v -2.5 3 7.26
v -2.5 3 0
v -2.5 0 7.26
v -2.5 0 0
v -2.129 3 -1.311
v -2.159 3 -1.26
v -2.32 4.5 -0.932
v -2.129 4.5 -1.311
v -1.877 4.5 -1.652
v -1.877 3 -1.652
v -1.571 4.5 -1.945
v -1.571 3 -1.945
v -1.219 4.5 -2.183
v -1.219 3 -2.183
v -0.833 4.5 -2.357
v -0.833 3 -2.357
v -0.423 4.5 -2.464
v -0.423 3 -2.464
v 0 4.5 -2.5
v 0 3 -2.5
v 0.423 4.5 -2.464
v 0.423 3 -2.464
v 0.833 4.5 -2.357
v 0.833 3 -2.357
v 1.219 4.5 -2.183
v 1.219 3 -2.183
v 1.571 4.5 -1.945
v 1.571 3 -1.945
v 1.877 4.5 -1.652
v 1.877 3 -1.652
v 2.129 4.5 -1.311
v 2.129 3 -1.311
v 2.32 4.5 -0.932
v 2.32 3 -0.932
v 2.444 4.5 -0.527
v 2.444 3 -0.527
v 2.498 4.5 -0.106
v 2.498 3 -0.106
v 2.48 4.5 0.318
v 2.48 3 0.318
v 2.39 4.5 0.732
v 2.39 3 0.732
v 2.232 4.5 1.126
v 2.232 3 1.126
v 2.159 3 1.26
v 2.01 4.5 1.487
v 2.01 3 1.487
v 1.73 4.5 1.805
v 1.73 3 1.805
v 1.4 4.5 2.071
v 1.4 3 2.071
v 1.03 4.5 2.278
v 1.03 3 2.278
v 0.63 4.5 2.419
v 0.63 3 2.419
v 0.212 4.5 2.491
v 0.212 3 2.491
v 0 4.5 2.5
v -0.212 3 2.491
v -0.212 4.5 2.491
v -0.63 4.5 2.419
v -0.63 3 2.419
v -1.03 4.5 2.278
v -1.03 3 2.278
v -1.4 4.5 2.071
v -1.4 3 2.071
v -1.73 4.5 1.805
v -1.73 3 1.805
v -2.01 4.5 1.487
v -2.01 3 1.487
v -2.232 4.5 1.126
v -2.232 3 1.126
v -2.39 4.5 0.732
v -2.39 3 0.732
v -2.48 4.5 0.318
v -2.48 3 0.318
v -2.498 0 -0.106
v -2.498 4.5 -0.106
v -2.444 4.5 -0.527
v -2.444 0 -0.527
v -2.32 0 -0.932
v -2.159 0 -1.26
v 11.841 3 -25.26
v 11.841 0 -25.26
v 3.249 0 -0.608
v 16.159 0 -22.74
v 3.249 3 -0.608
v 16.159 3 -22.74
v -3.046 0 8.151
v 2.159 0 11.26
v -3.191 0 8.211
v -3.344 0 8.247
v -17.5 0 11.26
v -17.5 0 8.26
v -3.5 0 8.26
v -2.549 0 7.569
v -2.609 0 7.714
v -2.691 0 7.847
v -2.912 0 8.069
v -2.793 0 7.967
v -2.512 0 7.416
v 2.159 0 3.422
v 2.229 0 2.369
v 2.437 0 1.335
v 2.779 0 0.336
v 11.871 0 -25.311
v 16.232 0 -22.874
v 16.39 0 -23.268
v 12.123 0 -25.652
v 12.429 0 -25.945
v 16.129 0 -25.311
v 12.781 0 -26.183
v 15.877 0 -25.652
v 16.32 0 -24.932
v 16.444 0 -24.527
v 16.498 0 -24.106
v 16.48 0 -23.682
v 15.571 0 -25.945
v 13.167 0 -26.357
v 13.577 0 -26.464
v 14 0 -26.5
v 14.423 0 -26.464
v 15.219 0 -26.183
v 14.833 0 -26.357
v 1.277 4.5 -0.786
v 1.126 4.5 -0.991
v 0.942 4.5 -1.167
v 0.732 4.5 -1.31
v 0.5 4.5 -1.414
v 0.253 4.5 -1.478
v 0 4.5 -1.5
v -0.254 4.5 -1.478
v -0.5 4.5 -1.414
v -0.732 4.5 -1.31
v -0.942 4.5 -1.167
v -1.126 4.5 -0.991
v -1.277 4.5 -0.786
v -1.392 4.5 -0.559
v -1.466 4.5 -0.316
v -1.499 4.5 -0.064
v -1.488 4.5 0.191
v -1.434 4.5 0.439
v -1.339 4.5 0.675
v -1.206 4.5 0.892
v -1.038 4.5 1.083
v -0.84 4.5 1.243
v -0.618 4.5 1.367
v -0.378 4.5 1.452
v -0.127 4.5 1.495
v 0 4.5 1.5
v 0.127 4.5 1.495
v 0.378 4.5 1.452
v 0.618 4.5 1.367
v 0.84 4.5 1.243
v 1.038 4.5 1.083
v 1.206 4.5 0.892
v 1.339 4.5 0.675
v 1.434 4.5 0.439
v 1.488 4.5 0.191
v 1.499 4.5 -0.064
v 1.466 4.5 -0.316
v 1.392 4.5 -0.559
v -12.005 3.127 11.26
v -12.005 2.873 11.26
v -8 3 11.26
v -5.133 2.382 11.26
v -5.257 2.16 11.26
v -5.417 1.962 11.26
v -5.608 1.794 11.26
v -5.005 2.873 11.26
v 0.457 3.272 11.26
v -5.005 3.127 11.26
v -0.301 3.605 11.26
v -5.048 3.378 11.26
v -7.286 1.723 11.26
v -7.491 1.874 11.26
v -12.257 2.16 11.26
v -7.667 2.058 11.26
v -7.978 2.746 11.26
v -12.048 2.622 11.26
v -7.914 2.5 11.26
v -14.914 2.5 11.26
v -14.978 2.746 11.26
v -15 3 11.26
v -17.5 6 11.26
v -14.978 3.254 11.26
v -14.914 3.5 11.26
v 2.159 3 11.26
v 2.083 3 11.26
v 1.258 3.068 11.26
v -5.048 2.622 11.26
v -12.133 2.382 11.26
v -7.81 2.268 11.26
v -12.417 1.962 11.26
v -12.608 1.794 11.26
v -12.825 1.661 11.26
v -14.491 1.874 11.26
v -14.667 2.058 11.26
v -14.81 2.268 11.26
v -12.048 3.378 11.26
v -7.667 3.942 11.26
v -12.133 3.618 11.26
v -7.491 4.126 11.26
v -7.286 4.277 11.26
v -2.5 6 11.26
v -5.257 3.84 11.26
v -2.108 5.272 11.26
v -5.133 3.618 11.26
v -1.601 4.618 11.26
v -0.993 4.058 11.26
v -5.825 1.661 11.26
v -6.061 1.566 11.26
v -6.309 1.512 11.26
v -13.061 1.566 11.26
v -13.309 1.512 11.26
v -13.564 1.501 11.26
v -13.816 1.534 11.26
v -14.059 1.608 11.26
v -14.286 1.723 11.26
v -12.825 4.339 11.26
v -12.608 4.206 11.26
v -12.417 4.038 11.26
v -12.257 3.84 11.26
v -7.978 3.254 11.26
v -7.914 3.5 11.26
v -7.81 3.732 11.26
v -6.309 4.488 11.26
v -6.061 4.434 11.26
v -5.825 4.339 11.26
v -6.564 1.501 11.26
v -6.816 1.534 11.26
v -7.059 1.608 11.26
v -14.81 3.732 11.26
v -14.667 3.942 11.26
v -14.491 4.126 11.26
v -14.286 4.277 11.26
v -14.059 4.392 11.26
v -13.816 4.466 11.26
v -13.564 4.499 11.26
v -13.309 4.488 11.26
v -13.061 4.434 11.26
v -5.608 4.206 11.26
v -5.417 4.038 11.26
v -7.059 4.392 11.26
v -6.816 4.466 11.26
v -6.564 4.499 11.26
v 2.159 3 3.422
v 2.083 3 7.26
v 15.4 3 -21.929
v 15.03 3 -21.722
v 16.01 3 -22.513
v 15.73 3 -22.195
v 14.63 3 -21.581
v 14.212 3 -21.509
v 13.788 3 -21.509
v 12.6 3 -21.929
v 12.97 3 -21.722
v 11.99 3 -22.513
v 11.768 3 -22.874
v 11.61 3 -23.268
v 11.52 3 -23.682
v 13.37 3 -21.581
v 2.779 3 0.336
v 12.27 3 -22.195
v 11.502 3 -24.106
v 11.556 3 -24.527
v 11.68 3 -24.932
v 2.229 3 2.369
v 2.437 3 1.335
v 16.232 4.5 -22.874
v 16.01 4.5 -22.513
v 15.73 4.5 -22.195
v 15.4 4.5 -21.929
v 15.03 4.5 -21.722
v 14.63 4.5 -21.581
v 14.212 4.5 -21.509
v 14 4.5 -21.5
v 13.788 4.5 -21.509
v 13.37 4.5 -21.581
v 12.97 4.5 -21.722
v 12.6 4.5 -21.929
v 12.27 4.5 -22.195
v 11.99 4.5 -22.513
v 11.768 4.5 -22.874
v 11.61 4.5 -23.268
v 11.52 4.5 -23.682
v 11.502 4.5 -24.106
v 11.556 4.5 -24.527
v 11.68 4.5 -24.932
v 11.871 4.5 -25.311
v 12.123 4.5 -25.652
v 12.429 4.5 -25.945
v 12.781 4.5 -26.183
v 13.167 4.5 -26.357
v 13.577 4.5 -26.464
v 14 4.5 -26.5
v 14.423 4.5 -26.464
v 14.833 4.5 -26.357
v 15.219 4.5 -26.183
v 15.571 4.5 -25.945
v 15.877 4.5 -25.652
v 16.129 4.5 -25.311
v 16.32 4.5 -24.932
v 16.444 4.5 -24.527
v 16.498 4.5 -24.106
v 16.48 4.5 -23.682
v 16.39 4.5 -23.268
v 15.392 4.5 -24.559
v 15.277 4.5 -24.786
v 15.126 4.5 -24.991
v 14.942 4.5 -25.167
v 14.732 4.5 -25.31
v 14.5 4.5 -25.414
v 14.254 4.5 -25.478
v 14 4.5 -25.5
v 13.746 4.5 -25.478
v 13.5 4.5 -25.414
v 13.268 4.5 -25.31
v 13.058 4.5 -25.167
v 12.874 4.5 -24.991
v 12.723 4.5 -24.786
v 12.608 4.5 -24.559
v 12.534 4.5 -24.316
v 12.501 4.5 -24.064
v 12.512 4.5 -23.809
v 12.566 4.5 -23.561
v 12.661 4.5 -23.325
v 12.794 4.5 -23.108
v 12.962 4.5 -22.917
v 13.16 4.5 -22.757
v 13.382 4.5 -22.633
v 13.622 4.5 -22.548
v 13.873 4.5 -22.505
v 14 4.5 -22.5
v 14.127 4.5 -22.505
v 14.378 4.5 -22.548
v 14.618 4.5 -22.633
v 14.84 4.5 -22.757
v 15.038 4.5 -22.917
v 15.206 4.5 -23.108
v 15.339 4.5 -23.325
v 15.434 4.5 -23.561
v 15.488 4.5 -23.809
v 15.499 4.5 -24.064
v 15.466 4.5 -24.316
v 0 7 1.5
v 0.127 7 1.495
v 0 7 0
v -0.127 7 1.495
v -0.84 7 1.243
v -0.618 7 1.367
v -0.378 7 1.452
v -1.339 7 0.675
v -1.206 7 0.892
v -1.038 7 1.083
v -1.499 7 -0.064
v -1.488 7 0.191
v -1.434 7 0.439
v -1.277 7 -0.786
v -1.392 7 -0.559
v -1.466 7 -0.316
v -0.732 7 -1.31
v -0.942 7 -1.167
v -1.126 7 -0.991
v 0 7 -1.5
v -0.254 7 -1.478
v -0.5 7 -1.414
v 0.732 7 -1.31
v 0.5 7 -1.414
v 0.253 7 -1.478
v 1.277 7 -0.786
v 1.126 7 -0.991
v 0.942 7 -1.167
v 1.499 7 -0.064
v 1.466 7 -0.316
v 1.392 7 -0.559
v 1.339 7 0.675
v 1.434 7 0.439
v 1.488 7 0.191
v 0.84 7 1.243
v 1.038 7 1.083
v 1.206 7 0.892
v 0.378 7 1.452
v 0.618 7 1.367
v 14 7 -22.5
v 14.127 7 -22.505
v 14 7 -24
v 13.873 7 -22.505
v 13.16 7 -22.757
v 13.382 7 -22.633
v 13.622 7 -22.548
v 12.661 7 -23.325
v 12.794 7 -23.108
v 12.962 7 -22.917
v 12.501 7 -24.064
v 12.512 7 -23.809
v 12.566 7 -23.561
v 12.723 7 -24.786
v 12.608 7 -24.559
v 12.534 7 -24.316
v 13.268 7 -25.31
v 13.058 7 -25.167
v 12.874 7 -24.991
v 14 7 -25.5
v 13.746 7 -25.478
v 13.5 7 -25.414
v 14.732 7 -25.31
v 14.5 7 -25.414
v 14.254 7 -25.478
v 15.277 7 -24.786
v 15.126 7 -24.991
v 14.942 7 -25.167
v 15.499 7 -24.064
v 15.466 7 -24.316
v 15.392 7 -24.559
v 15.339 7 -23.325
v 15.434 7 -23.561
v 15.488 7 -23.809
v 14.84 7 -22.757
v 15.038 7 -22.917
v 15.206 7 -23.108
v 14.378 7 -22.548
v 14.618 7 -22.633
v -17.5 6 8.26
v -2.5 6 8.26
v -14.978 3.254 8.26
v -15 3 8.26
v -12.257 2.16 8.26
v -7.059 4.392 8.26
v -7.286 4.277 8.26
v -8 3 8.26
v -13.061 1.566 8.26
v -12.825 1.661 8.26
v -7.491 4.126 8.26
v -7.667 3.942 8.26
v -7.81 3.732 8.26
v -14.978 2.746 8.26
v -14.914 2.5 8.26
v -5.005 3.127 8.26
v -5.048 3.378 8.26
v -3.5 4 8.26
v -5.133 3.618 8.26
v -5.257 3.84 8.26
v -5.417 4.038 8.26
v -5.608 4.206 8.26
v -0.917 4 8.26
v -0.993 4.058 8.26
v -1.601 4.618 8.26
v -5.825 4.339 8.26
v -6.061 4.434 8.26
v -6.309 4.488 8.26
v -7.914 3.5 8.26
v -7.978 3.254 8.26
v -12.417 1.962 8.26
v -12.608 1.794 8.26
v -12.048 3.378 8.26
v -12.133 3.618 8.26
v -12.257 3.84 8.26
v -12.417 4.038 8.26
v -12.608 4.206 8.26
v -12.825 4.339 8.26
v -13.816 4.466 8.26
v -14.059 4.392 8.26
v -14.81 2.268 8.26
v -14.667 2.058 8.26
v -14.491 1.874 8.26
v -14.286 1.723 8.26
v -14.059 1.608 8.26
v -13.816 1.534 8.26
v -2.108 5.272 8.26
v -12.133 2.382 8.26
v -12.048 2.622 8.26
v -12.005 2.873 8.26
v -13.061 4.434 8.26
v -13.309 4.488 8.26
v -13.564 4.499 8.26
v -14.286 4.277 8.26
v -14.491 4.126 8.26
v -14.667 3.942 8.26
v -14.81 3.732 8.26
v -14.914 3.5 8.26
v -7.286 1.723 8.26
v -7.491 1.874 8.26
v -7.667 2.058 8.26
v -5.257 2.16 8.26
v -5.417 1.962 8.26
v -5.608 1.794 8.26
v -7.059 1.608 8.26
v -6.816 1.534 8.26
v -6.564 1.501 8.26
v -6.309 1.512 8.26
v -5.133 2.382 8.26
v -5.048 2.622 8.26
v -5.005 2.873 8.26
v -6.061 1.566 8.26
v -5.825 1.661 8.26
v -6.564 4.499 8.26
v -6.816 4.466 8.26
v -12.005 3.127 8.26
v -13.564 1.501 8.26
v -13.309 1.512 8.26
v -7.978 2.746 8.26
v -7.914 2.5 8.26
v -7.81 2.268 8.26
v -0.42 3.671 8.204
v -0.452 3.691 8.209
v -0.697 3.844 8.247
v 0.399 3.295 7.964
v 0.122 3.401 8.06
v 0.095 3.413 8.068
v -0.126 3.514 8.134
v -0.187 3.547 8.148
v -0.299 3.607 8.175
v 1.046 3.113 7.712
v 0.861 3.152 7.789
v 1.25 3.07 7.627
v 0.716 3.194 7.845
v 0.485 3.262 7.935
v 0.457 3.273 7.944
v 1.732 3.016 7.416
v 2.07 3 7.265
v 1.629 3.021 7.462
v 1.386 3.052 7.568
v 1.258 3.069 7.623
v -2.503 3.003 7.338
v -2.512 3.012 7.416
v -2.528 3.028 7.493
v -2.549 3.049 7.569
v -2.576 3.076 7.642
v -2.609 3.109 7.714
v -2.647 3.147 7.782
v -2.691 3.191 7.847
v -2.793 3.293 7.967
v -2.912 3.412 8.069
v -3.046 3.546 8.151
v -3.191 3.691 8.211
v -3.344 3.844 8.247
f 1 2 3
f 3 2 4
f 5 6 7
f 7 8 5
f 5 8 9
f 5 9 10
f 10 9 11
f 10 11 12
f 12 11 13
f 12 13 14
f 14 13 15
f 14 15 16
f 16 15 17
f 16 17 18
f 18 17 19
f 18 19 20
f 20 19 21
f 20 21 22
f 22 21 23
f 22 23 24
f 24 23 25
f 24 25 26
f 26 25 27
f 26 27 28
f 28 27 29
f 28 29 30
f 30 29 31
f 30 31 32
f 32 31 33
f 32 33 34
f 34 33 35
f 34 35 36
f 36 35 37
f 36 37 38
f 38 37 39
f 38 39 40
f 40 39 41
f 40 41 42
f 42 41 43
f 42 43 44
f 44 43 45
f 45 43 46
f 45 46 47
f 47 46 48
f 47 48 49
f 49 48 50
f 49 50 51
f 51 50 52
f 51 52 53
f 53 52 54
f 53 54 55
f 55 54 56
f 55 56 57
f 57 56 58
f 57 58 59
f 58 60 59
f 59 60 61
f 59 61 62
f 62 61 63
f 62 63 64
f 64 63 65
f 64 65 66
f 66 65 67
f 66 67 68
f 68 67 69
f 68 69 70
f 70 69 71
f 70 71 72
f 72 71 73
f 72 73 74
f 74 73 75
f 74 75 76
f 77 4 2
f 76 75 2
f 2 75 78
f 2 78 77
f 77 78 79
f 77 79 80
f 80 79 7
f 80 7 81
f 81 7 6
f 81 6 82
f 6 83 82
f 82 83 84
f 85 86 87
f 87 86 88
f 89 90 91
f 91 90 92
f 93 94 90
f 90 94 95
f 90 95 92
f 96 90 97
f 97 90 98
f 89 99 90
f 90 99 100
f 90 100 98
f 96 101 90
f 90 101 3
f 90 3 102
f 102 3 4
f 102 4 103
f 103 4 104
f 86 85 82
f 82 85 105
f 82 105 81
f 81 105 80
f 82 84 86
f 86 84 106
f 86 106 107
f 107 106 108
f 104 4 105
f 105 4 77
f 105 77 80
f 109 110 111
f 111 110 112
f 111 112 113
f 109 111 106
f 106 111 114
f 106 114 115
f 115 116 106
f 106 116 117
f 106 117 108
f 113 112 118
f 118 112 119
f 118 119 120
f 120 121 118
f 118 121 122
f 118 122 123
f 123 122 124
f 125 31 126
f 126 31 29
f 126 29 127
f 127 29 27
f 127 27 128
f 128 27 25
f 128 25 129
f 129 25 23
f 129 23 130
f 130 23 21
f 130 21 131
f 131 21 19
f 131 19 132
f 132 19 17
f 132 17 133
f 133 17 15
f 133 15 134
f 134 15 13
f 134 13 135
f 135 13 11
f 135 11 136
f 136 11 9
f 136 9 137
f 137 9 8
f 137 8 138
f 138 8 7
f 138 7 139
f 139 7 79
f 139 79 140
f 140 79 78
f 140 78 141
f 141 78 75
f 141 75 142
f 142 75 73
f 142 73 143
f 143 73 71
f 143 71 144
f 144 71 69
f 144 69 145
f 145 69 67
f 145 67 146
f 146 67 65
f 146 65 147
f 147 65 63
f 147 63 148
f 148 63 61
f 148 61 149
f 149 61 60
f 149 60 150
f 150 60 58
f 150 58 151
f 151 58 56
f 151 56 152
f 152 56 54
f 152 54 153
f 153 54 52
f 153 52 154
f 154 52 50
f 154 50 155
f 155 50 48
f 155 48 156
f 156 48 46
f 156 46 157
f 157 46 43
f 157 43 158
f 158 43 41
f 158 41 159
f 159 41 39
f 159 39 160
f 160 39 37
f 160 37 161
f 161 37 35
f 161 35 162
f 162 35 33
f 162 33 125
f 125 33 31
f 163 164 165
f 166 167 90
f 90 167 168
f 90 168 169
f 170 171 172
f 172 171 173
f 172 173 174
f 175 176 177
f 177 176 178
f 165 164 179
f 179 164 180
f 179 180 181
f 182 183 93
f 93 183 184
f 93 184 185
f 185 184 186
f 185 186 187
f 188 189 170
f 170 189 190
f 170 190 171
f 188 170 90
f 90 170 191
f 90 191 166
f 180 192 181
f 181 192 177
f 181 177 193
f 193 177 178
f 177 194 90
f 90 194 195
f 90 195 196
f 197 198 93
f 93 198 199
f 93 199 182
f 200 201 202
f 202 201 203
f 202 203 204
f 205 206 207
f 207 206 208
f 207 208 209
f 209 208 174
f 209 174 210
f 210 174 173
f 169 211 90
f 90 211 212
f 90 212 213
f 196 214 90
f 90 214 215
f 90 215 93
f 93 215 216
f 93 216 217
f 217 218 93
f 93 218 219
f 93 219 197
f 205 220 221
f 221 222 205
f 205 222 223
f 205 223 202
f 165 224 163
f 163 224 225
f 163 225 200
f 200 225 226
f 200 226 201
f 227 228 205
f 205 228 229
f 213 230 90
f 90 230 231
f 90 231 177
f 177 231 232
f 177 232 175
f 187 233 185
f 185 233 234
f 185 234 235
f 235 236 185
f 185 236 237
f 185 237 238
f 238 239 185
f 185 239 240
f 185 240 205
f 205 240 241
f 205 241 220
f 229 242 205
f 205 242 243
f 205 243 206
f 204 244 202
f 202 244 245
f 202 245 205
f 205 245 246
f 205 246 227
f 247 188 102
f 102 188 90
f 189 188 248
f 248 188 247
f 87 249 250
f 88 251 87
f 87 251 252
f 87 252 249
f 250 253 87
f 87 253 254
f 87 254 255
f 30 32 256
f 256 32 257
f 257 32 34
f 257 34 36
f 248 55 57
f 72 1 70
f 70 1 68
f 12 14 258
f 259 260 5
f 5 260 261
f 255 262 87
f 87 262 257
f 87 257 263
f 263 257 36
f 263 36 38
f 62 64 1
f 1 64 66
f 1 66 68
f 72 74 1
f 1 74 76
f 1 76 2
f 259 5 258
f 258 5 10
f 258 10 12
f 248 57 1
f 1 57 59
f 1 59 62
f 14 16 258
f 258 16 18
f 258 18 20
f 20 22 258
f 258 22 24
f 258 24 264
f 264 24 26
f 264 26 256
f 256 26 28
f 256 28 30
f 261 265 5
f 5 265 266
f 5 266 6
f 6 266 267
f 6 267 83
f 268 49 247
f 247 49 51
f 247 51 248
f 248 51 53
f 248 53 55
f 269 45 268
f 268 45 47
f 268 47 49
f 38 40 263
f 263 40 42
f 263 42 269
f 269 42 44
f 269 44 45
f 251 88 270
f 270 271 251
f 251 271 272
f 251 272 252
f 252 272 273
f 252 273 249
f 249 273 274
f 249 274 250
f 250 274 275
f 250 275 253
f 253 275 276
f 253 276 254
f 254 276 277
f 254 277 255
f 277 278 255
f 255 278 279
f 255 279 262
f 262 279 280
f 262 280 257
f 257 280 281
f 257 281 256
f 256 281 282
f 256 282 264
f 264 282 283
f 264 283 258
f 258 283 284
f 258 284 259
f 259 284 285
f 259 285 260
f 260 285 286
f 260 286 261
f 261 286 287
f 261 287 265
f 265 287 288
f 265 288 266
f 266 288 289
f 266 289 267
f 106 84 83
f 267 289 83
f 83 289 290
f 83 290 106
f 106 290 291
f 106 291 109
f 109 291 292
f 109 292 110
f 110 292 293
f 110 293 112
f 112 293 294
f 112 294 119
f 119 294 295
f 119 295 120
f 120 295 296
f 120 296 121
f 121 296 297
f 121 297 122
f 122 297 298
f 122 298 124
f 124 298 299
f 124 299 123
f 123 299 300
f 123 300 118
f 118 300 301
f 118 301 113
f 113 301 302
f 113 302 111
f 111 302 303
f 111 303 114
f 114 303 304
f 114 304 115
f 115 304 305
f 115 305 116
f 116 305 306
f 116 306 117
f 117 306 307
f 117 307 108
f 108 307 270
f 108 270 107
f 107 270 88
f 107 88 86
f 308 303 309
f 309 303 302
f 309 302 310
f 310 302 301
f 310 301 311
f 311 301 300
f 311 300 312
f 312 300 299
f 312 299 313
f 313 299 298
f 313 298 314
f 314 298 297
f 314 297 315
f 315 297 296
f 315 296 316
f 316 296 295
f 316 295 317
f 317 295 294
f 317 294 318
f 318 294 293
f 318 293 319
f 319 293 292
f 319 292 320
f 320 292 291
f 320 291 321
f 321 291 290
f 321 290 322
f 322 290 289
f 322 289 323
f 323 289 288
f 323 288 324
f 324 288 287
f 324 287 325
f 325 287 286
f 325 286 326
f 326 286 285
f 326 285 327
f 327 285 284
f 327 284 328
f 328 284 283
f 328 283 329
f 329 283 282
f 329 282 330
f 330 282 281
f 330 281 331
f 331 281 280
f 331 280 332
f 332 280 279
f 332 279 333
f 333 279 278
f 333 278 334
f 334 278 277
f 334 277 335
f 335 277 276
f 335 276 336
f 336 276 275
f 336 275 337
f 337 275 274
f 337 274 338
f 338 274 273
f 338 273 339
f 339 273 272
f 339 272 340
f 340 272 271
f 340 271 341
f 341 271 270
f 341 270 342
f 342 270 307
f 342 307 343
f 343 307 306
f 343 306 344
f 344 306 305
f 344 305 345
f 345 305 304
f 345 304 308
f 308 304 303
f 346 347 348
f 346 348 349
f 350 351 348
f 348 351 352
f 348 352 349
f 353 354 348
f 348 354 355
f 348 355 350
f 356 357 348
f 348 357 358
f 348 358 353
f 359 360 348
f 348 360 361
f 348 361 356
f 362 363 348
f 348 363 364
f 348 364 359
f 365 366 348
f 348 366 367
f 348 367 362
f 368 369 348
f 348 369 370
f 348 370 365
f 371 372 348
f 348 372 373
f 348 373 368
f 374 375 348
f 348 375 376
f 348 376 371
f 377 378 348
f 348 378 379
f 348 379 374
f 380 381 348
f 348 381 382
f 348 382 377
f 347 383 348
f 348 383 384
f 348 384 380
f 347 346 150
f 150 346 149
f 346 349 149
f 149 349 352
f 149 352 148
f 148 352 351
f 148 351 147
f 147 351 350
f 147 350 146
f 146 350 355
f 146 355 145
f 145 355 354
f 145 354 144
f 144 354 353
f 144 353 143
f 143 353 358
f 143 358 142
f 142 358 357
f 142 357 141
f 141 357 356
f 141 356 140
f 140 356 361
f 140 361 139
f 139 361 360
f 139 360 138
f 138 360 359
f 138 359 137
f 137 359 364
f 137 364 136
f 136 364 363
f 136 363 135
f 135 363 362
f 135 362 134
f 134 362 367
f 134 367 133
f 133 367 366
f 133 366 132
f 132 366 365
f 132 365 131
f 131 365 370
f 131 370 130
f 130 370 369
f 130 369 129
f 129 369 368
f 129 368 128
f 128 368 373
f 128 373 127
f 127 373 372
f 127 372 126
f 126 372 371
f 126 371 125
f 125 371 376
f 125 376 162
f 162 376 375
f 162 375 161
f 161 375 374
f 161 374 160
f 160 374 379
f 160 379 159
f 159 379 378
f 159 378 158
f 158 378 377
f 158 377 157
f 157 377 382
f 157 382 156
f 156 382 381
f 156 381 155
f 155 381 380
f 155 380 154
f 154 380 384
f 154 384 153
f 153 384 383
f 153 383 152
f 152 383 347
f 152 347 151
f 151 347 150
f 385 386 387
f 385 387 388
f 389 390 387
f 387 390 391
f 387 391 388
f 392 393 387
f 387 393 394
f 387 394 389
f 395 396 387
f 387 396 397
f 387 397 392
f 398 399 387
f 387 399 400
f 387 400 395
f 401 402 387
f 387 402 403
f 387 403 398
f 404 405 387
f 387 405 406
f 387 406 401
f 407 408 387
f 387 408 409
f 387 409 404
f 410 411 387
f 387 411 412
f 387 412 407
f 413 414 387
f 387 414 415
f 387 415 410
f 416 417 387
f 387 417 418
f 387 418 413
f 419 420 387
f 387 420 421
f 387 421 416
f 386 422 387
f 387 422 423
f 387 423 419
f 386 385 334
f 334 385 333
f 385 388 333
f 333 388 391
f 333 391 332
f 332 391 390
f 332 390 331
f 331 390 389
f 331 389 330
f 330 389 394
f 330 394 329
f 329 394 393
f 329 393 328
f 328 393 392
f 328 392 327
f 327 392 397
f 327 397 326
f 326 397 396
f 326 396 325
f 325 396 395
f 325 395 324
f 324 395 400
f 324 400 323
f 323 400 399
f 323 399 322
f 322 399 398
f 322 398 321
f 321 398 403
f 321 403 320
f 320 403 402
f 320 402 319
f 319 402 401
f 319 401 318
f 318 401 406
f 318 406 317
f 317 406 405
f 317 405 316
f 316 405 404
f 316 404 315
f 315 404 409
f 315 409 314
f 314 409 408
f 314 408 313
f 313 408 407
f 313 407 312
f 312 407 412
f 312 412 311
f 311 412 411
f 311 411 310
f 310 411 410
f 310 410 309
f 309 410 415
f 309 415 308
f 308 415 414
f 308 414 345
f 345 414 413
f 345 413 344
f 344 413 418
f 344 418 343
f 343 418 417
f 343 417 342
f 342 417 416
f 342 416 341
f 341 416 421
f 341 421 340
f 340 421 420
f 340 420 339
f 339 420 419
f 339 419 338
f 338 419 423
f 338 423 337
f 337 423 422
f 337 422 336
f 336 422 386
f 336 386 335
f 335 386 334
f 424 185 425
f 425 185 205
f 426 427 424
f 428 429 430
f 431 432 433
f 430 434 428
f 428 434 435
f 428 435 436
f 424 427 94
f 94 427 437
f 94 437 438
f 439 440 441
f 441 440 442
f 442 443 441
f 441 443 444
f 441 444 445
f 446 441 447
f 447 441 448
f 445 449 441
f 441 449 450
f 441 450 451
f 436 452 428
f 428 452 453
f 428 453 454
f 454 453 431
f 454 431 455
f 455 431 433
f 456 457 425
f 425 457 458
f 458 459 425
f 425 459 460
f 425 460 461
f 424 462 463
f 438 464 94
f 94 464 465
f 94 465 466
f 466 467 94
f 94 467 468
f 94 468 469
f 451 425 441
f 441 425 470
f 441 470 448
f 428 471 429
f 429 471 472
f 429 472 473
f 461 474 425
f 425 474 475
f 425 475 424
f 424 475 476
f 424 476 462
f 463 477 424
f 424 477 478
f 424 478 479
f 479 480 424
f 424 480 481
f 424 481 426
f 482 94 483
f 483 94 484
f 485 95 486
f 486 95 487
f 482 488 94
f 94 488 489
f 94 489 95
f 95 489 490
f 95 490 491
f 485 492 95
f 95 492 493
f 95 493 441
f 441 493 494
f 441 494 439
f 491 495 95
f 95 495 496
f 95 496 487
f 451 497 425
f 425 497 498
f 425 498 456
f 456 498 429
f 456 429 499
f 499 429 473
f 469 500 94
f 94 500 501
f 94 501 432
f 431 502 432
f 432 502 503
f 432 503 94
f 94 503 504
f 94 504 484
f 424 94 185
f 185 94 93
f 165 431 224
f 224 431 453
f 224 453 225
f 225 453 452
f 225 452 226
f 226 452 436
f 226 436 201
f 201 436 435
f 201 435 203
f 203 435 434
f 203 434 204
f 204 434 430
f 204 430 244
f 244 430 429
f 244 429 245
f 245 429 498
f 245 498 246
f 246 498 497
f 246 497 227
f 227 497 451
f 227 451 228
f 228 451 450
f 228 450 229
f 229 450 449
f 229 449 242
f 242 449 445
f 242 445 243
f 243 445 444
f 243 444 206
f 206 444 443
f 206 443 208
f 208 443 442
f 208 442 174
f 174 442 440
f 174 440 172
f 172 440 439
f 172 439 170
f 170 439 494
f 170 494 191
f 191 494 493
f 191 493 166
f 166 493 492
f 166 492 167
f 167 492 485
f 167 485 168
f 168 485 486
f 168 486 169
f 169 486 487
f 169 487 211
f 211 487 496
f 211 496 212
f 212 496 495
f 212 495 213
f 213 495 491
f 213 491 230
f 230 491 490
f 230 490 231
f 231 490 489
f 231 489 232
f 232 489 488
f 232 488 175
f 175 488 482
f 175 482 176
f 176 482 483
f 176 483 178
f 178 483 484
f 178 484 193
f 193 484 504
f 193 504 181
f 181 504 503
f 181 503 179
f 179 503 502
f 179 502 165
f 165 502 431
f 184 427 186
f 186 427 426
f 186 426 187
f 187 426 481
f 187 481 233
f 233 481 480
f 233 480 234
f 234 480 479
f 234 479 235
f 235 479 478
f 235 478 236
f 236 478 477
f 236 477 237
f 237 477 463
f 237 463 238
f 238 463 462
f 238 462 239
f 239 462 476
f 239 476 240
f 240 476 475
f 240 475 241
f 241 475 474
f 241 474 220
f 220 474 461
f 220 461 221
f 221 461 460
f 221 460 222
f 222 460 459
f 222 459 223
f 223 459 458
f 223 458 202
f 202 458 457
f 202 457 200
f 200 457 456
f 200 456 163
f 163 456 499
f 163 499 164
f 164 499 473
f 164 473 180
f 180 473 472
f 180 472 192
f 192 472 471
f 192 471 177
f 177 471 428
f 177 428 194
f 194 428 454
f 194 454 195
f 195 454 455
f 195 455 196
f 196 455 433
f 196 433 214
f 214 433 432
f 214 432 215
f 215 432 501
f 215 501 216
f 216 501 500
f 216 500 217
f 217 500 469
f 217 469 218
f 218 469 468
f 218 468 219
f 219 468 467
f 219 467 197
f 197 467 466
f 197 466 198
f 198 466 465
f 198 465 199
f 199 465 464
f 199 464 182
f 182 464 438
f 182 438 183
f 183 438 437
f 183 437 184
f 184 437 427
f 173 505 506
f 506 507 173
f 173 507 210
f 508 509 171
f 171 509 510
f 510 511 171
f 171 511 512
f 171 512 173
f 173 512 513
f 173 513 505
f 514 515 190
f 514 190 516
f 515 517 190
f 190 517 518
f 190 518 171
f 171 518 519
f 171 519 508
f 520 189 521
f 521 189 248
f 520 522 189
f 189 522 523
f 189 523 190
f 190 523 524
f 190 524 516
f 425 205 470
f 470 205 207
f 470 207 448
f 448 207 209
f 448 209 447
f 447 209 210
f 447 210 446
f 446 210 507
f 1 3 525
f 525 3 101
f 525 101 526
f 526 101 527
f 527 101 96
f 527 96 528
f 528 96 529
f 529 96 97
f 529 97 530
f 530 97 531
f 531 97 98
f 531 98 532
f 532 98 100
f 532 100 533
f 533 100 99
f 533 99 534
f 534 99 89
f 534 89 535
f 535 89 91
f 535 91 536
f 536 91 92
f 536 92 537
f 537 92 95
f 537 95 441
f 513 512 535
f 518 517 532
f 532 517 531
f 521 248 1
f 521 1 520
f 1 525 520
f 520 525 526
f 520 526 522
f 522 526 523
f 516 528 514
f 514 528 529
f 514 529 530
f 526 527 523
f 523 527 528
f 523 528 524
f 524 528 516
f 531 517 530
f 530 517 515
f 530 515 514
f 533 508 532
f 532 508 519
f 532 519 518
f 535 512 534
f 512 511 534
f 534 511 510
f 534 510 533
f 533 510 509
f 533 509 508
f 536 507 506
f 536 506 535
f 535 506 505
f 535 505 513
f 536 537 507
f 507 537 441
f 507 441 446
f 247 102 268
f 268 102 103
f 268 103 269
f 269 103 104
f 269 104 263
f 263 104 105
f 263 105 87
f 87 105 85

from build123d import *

# Parameters (mm, degrees)
BOSS_EXTRUDE1_DEPTH = 3
SKETCH1_4_R         = 2.5000000000000004
SKETCH1_4_R_2       = 1.5
SKETCH1_4_R_3       = 2.500000000000002
SKETCH1_4_R_4       = 1.5000000000000009
BOSS_EXTRUDE2_DEPTH = 4.5
SKETCH1_5_R         = 1.5
SKETCH1_5_R_2       = 1.5000000000000009
BOSS_EXTRUDE3_DEPTH = 7
BOSS_EXTRUDE4_DEPTH = 15
SKETCH4_R           = 1.4999999999999987
SKETCH4_R_2         = 1.5000000000000007
CUT_EXTRUDE1_DEPTH  = 20
FILLET1_R           = 5
FILLET2_R           = 1
FILLET3_R           = 8


with BuildPart() as part:
    # Sketch1 → Boss-Extrude1 (new body)
    with BuildSketch(Plane(origin=(0, 0, 0), x_dir=(1, 0, 0), z_dir=(0, 1, 0))):
        with BuildLine():
            Line((11.840552747753916, 25.259677563810218), (-2.159447252246084, 1.2596775638102156))
            ThreePointArc((-2.1594472522460837, 1.2596775638102162), (0.6524499480361662, 2.413360533635123), (2.5000000000000004, 0))
            ThreePointArc((2.5000000000000004, -6.1e-16), (2.413360533635123, -0.6524499480361662), (2.159447252246083, -1.2596775638102173))
            Line((2.159447252246083, -1.2596775638102156), (16.15944725224609, 22.740322436189782))
            ThreePointArc((16.159447252246085, 22.740322436189782), (12.740322436189784, 21.840552747753915), (11.840552747753918, 25.259677563810218))
        make_face()
        Polygon((2.1594472522460837, -3), (-2.5, -3), (-2.499999999999999, -11.259677563810214), (2.1594472522460846, -11.259677563810214), align=None)
        with BuildLine():
            ThreePointArc((2.159447252246083, -1.2596775638102173), (-0.6524499480361661, -2.413360533635123), (-2.5000000000000004, 3.1e-16))
            Line((-2.5000000000000004, 0), (-2.5, -3))
            Line((-2.5, -3), (2.1594472522460837, -3))
            Line((2.1594472522460832, -3), (2.159447252246083, -1.2596775638102156))
        make_face()
    extrude(amount=BOSS_EXTRUDE1_DEPTH)

    # Sketch1<4> → Boss-Extrude2 (add)
    # profile 1 of 2: a face of its own
    with BuildSketch(Plane(origin=(0, 0, 0), x_dir=(1, 0, 0), z_dir=(0, 1, 0))):
        with Locations(Location((0, 0, 0), (0, 0, 149.743562836))):
            Circle(SKETCH1_4_R)
        with Locations(Location((0, 0, 0), (0, 0, 270))):
            Circle(SKETCH1_4_R_2, mode=Mode.SUBTRACT)
    # profile 2 of 2: a face of its own
    with BuildSketch(Plane(origin=(0, 0, 0), x_dir=(1, 0, 0), z_dir=(0, 1, 0))):
        with Locations(Location((14.000000000000002, 24, 0), (0, 0, 149.743562836))):
            Circle(SKETCH1_4_R_3)
        with Locations(Location((14.000000000000002, 24, 0), (0, 0, 270))):
            Circle(SKETCH1_4_R_4, mode=Mode.SUBTRACT)
    extrude(amount=BOSS_EXTRUDE2_DEPTH)

    # Sketch1<5> → Boss-Extrude3 (add)
    with BuildSketch(Plane(origin=(0, 0, 0), x_dir=(1, 0, 0), z_dir=(0, 1, 0))):
        with Locations(Location((0, 0, 0), (0, 0, 270))):
            Circle(SKETCH1_5_R)
        with Locations(Location((14.000000000000002, 24, 0), (0, 0, 270))):
            Circle(SKETCH1_5_R_2)
    extrude(amount=BOSS_EXTRUDE3_DEPTH)

    # Sketch3 → Boss-Extrude4 (add)
    with BuildSketch(Plane.ZY.offset(2.5000000000000004)):
        Polygon((11.259677563810214, 0), (8.259677563810214, -3.7e-16), (8.259677563810214, 6), (11.259677563810214, 6.000000000000001), align=None)
    extrude(amount=BOSS_EXTRUDE4_DEPTH)

    # Sketch4 → Cut-Extrude1 (cut)
    with BuildSketch(Plane(origin=(9.5e-16, 0, 8.259677563810214), x_dir=(-1, 0, 1.2e-16), z_dir=(-1.2e-16, 0, -1))):
        with Locations((6.500000000000001, 2.999999999999998)):
            Circle(SKETCH4_R)
        with Locations((13.499999999999998, 2.9999999999999996)):
            Circle(SKETCH4_R_2)
    extrude(amount=-CUT_EXTRUDE1_DEPTH, mode=Mode.SUBTRACT)

    # Fillet1
    # the kernel refuses this fillet: 5 mm, written as the material it adds along each edge
    with BuildSketch(Plane(origin=(-2.499999999999999, 3, 11.259677563810214), x_dir=(1, 0, -1.6e-16), z_dir=(-1.6e-16, 0, -1))) as fillet1_piece_1:
        with BuildLine():
            CenterArc((4.582575694955841, -5), FILLET1_R, 90, 66.42182152179817)
            Line((8.9e-16, -3), (0, 0))
            Line((0, 0), (4.582575694955841, 0))
        make_face()
    extrude(amount=3)

    # Fillet2
    fillet2_edges = [part.edges().sort_by_distance(p)[0] for p in [
        (-2.4999999999999996, 1.4999999999999998, 8.259677563810214),
        (-0.20871215252200015, 3, 8.25967756381),
    ]]
    fillet(fillet2_edges, radius=FILLET2_R)

    # Fillet3
    fillet3_edges = [part.edges().sort_by_distance(p)[0] for p in [
        (2.159447252246083, 1.5, 1.2596775638102164),
    ]]
    fillet(fillet3_edges, radius=FILLET3_R)


solid = part.part
